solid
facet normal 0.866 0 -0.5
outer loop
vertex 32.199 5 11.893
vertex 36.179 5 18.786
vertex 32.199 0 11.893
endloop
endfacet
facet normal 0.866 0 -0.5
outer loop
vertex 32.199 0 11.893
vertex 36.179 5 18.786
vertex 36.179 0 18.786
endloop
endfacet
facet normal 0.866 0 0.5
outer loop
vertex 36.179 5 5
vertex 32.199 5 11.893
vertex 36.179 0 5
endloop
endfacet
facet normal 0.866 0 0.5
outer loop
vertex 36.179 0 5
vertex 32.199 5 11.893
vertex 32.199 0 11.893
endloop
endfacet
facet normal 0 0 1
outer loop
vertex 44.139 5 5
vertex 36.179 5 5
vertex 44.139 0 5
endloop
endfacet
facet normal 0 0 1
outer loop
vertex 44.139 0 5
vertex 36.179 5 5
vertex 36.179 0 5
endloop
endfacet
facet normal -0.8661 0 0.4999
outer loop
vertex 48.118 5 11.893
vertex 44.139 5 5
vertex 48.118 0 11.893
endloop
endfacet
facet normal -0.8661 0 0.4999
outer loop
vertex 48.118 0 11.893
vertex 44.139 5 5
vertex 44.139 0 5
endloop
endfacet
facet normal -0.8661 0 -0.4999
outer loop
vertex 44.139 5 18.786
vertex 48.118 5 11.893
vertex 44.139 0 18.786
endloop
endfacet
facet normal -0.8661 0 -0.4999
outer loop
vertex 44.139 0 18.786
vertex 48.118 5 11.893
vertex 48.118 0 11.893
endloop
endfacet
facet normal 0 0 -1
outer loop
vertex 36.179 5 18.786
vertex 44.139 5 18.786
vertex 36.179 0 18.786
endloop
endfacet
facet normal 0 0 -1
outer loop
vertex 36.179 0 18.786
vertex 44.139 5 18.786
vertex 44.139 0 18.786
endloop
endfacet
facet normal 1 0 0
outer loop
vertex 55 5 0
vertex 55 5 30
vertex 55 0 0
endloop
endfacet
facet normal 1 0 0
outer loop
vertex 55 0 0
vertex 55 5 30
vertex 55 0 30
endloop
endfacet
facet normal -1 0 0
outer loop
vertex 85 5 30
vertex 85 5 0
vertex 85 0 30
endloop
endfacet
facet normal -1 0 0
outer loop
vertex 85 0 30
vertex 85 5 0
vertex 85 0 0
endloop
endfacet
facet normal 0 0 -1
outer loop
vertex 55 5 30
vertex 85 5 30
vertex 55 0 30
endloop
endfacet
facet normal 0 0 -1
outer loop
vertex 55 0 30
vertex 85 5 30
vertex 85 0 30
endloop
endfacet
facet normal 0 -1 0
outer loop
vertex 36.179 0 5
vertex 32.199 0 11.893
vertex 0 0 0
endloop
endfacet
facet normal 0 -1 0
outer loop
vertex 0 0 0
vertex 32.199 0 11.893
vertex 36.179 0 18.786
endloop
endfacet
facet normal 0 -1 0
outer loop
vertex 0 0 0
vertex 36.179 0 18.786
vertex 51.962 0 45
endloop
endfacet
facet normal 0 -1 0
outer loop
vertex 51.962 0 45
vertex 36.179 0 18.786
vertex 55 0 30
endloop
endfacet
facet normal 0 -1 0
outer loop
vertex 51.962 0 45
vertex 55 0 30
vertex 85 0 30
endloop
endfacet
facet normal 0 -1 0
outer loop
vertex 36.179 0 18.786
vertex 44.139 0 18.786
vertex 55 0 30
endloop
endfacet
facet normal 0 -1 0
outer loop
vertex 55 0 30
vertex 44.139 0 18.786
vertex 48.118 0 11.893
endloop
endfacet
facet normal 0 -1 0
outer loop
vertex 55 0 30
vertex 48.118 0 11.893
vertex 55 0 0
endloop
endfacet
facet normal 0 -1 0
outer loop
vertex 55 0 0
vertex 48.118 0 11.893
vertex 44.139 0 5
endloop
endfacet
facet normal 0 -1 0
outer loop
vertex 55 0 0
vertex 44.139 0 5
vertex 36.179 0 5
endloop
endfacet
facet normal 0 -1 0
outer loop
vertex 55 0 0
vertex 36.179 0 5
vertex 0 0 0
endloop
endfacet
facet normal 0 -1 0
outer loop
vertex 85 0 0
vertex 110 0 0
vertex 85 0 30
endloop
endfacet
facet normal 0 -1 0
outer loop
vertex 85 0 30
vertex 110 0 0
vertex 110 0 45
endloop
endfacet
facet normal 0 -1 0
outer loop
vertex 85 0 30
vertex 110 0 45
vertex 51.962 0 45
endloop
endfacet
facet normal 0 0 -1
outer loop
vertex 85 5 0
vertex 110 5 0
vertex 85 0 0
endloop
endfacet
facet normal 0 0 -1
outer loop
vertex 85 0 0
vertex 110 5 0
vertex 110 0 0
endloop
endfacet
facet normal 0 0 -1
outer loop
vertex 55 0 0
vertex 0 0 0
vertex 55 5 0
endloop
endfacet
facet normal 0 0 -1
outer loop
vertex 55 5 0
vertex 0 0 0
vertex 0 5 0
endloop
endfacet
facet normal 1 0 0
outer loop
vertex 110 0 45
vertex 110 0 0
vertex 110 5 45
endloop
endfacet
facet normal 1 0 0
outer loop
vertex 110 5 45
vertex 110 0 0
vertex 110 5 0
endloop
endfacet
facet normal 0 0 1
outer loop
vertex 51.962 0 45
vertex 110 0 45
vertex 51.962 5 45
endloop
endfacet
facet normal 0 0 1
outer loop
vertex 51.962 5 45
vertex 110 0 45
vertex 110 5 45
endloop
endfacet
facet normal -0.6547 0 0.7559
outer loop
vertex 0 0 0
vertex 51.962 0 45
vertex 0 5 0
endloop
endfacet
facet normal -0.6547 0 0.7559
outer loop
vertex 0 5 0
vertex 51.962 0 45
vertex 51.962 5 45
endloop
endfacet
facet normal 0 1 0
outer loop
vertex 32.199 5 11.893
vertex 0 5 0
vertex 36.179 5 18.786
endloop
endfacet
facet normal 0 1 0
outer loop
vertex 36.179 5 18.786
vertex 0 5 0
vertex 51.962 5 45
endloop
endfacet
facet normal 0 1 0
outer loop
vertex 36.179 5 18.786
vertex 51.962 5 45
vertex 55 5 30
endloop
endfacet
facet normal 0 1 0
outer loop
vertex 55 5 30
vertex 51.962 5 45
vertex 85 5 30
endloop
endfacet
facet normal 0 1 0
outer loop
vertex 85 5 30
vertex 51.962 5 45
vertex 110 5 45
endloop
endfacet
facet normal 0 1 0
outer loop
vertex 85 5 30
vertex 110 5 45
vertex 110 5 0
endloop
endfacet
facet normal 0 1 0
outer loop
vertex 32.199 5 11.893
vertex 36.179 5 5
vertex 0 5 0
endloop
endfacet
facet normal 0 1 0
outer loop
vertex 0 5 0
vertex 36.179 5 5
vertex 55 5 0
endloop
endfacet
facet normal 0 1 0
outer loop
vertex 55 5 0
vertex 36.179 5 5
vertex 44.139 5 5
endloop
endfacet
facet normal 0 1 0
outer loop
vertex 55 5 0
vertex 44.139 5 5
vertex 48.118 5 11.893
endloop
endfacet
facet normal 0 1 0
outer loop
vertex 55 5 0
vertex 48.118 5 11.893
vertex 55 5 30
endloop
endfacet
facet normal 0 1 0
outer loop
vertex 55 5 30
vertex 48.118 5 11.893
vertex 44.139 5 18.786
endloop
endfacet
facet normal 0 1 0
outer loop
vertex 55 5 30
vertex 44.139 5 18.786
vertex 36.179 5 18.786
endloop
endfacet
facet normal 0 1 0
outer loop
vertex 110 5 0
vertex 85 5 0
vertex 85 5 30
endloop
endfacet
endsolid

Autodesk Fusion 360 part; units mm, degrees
sketch "Sketch1" plane through (0, 0, 0) normal (0, 1, 0) x (1, 0, 0)
  line L0 (110, 0) -> (41.4831, 0)
  line L1 (51.9615, -45) -> (110, -45)
  line L2 (110, -45) -> (110, 0)
  line L3 (41.4831, 0) -> (0, 0)
  line L4 (0, 0) -> (51.9615, -45)
  dimension "d1" = 110
  dimension "d2" = 45
  dimension "d4" = 58.0385
extrude "Extrude1" add sketch "Sketch1" along normal blind 5
sketch "Sketch2" plane through (0, 0, 0) normal (0, -1, 0) x (1, 0, 0)
  line L0 (51.9615, 45) -> (0, 0)
  line L1 (0, 0) -> (110, 0)
  line L2 (110, 0) -> (110, 45)
  line L3 (110, 45) -> (51.9615, 45)
  line L4 (55, 0) -> (85, 0)
  line L5 (85, 0) -> (85, 30)
  line L6 (85, 30) -> (55, 30)
  line L7 (55, 30) -> (55, 0)
  line L8 (44.1386, 5) -> (48.1184, 11.8931)
  line L9 (48.1184, 11.8931) -> (44.1386, 18.7862)
  line L10 (44.1386, 18.7862) -> (36.1791, 18.7862)
  line L11 (36.1791, 18.7862) -> (32.1994, 11.8931)
  line L12 (32.1994, 11.8931) -> (36.1791, 5)
  line L13 (36.1791, 5) -> (44.1386, 5)
  point P0 (40.1589, 11.8931)
  dimension "d8" = 25
  dimension "d9" = 15
  dimension "d11" = 5
extrude "Extrude2" cut sketch "Sketch2" against normal through all contours L1 L4 L5 L6 L7
extrude "Extrude3" cut sketch "Sketch2" against normal through all contours L8 L9 L10 L11 L12 L13
